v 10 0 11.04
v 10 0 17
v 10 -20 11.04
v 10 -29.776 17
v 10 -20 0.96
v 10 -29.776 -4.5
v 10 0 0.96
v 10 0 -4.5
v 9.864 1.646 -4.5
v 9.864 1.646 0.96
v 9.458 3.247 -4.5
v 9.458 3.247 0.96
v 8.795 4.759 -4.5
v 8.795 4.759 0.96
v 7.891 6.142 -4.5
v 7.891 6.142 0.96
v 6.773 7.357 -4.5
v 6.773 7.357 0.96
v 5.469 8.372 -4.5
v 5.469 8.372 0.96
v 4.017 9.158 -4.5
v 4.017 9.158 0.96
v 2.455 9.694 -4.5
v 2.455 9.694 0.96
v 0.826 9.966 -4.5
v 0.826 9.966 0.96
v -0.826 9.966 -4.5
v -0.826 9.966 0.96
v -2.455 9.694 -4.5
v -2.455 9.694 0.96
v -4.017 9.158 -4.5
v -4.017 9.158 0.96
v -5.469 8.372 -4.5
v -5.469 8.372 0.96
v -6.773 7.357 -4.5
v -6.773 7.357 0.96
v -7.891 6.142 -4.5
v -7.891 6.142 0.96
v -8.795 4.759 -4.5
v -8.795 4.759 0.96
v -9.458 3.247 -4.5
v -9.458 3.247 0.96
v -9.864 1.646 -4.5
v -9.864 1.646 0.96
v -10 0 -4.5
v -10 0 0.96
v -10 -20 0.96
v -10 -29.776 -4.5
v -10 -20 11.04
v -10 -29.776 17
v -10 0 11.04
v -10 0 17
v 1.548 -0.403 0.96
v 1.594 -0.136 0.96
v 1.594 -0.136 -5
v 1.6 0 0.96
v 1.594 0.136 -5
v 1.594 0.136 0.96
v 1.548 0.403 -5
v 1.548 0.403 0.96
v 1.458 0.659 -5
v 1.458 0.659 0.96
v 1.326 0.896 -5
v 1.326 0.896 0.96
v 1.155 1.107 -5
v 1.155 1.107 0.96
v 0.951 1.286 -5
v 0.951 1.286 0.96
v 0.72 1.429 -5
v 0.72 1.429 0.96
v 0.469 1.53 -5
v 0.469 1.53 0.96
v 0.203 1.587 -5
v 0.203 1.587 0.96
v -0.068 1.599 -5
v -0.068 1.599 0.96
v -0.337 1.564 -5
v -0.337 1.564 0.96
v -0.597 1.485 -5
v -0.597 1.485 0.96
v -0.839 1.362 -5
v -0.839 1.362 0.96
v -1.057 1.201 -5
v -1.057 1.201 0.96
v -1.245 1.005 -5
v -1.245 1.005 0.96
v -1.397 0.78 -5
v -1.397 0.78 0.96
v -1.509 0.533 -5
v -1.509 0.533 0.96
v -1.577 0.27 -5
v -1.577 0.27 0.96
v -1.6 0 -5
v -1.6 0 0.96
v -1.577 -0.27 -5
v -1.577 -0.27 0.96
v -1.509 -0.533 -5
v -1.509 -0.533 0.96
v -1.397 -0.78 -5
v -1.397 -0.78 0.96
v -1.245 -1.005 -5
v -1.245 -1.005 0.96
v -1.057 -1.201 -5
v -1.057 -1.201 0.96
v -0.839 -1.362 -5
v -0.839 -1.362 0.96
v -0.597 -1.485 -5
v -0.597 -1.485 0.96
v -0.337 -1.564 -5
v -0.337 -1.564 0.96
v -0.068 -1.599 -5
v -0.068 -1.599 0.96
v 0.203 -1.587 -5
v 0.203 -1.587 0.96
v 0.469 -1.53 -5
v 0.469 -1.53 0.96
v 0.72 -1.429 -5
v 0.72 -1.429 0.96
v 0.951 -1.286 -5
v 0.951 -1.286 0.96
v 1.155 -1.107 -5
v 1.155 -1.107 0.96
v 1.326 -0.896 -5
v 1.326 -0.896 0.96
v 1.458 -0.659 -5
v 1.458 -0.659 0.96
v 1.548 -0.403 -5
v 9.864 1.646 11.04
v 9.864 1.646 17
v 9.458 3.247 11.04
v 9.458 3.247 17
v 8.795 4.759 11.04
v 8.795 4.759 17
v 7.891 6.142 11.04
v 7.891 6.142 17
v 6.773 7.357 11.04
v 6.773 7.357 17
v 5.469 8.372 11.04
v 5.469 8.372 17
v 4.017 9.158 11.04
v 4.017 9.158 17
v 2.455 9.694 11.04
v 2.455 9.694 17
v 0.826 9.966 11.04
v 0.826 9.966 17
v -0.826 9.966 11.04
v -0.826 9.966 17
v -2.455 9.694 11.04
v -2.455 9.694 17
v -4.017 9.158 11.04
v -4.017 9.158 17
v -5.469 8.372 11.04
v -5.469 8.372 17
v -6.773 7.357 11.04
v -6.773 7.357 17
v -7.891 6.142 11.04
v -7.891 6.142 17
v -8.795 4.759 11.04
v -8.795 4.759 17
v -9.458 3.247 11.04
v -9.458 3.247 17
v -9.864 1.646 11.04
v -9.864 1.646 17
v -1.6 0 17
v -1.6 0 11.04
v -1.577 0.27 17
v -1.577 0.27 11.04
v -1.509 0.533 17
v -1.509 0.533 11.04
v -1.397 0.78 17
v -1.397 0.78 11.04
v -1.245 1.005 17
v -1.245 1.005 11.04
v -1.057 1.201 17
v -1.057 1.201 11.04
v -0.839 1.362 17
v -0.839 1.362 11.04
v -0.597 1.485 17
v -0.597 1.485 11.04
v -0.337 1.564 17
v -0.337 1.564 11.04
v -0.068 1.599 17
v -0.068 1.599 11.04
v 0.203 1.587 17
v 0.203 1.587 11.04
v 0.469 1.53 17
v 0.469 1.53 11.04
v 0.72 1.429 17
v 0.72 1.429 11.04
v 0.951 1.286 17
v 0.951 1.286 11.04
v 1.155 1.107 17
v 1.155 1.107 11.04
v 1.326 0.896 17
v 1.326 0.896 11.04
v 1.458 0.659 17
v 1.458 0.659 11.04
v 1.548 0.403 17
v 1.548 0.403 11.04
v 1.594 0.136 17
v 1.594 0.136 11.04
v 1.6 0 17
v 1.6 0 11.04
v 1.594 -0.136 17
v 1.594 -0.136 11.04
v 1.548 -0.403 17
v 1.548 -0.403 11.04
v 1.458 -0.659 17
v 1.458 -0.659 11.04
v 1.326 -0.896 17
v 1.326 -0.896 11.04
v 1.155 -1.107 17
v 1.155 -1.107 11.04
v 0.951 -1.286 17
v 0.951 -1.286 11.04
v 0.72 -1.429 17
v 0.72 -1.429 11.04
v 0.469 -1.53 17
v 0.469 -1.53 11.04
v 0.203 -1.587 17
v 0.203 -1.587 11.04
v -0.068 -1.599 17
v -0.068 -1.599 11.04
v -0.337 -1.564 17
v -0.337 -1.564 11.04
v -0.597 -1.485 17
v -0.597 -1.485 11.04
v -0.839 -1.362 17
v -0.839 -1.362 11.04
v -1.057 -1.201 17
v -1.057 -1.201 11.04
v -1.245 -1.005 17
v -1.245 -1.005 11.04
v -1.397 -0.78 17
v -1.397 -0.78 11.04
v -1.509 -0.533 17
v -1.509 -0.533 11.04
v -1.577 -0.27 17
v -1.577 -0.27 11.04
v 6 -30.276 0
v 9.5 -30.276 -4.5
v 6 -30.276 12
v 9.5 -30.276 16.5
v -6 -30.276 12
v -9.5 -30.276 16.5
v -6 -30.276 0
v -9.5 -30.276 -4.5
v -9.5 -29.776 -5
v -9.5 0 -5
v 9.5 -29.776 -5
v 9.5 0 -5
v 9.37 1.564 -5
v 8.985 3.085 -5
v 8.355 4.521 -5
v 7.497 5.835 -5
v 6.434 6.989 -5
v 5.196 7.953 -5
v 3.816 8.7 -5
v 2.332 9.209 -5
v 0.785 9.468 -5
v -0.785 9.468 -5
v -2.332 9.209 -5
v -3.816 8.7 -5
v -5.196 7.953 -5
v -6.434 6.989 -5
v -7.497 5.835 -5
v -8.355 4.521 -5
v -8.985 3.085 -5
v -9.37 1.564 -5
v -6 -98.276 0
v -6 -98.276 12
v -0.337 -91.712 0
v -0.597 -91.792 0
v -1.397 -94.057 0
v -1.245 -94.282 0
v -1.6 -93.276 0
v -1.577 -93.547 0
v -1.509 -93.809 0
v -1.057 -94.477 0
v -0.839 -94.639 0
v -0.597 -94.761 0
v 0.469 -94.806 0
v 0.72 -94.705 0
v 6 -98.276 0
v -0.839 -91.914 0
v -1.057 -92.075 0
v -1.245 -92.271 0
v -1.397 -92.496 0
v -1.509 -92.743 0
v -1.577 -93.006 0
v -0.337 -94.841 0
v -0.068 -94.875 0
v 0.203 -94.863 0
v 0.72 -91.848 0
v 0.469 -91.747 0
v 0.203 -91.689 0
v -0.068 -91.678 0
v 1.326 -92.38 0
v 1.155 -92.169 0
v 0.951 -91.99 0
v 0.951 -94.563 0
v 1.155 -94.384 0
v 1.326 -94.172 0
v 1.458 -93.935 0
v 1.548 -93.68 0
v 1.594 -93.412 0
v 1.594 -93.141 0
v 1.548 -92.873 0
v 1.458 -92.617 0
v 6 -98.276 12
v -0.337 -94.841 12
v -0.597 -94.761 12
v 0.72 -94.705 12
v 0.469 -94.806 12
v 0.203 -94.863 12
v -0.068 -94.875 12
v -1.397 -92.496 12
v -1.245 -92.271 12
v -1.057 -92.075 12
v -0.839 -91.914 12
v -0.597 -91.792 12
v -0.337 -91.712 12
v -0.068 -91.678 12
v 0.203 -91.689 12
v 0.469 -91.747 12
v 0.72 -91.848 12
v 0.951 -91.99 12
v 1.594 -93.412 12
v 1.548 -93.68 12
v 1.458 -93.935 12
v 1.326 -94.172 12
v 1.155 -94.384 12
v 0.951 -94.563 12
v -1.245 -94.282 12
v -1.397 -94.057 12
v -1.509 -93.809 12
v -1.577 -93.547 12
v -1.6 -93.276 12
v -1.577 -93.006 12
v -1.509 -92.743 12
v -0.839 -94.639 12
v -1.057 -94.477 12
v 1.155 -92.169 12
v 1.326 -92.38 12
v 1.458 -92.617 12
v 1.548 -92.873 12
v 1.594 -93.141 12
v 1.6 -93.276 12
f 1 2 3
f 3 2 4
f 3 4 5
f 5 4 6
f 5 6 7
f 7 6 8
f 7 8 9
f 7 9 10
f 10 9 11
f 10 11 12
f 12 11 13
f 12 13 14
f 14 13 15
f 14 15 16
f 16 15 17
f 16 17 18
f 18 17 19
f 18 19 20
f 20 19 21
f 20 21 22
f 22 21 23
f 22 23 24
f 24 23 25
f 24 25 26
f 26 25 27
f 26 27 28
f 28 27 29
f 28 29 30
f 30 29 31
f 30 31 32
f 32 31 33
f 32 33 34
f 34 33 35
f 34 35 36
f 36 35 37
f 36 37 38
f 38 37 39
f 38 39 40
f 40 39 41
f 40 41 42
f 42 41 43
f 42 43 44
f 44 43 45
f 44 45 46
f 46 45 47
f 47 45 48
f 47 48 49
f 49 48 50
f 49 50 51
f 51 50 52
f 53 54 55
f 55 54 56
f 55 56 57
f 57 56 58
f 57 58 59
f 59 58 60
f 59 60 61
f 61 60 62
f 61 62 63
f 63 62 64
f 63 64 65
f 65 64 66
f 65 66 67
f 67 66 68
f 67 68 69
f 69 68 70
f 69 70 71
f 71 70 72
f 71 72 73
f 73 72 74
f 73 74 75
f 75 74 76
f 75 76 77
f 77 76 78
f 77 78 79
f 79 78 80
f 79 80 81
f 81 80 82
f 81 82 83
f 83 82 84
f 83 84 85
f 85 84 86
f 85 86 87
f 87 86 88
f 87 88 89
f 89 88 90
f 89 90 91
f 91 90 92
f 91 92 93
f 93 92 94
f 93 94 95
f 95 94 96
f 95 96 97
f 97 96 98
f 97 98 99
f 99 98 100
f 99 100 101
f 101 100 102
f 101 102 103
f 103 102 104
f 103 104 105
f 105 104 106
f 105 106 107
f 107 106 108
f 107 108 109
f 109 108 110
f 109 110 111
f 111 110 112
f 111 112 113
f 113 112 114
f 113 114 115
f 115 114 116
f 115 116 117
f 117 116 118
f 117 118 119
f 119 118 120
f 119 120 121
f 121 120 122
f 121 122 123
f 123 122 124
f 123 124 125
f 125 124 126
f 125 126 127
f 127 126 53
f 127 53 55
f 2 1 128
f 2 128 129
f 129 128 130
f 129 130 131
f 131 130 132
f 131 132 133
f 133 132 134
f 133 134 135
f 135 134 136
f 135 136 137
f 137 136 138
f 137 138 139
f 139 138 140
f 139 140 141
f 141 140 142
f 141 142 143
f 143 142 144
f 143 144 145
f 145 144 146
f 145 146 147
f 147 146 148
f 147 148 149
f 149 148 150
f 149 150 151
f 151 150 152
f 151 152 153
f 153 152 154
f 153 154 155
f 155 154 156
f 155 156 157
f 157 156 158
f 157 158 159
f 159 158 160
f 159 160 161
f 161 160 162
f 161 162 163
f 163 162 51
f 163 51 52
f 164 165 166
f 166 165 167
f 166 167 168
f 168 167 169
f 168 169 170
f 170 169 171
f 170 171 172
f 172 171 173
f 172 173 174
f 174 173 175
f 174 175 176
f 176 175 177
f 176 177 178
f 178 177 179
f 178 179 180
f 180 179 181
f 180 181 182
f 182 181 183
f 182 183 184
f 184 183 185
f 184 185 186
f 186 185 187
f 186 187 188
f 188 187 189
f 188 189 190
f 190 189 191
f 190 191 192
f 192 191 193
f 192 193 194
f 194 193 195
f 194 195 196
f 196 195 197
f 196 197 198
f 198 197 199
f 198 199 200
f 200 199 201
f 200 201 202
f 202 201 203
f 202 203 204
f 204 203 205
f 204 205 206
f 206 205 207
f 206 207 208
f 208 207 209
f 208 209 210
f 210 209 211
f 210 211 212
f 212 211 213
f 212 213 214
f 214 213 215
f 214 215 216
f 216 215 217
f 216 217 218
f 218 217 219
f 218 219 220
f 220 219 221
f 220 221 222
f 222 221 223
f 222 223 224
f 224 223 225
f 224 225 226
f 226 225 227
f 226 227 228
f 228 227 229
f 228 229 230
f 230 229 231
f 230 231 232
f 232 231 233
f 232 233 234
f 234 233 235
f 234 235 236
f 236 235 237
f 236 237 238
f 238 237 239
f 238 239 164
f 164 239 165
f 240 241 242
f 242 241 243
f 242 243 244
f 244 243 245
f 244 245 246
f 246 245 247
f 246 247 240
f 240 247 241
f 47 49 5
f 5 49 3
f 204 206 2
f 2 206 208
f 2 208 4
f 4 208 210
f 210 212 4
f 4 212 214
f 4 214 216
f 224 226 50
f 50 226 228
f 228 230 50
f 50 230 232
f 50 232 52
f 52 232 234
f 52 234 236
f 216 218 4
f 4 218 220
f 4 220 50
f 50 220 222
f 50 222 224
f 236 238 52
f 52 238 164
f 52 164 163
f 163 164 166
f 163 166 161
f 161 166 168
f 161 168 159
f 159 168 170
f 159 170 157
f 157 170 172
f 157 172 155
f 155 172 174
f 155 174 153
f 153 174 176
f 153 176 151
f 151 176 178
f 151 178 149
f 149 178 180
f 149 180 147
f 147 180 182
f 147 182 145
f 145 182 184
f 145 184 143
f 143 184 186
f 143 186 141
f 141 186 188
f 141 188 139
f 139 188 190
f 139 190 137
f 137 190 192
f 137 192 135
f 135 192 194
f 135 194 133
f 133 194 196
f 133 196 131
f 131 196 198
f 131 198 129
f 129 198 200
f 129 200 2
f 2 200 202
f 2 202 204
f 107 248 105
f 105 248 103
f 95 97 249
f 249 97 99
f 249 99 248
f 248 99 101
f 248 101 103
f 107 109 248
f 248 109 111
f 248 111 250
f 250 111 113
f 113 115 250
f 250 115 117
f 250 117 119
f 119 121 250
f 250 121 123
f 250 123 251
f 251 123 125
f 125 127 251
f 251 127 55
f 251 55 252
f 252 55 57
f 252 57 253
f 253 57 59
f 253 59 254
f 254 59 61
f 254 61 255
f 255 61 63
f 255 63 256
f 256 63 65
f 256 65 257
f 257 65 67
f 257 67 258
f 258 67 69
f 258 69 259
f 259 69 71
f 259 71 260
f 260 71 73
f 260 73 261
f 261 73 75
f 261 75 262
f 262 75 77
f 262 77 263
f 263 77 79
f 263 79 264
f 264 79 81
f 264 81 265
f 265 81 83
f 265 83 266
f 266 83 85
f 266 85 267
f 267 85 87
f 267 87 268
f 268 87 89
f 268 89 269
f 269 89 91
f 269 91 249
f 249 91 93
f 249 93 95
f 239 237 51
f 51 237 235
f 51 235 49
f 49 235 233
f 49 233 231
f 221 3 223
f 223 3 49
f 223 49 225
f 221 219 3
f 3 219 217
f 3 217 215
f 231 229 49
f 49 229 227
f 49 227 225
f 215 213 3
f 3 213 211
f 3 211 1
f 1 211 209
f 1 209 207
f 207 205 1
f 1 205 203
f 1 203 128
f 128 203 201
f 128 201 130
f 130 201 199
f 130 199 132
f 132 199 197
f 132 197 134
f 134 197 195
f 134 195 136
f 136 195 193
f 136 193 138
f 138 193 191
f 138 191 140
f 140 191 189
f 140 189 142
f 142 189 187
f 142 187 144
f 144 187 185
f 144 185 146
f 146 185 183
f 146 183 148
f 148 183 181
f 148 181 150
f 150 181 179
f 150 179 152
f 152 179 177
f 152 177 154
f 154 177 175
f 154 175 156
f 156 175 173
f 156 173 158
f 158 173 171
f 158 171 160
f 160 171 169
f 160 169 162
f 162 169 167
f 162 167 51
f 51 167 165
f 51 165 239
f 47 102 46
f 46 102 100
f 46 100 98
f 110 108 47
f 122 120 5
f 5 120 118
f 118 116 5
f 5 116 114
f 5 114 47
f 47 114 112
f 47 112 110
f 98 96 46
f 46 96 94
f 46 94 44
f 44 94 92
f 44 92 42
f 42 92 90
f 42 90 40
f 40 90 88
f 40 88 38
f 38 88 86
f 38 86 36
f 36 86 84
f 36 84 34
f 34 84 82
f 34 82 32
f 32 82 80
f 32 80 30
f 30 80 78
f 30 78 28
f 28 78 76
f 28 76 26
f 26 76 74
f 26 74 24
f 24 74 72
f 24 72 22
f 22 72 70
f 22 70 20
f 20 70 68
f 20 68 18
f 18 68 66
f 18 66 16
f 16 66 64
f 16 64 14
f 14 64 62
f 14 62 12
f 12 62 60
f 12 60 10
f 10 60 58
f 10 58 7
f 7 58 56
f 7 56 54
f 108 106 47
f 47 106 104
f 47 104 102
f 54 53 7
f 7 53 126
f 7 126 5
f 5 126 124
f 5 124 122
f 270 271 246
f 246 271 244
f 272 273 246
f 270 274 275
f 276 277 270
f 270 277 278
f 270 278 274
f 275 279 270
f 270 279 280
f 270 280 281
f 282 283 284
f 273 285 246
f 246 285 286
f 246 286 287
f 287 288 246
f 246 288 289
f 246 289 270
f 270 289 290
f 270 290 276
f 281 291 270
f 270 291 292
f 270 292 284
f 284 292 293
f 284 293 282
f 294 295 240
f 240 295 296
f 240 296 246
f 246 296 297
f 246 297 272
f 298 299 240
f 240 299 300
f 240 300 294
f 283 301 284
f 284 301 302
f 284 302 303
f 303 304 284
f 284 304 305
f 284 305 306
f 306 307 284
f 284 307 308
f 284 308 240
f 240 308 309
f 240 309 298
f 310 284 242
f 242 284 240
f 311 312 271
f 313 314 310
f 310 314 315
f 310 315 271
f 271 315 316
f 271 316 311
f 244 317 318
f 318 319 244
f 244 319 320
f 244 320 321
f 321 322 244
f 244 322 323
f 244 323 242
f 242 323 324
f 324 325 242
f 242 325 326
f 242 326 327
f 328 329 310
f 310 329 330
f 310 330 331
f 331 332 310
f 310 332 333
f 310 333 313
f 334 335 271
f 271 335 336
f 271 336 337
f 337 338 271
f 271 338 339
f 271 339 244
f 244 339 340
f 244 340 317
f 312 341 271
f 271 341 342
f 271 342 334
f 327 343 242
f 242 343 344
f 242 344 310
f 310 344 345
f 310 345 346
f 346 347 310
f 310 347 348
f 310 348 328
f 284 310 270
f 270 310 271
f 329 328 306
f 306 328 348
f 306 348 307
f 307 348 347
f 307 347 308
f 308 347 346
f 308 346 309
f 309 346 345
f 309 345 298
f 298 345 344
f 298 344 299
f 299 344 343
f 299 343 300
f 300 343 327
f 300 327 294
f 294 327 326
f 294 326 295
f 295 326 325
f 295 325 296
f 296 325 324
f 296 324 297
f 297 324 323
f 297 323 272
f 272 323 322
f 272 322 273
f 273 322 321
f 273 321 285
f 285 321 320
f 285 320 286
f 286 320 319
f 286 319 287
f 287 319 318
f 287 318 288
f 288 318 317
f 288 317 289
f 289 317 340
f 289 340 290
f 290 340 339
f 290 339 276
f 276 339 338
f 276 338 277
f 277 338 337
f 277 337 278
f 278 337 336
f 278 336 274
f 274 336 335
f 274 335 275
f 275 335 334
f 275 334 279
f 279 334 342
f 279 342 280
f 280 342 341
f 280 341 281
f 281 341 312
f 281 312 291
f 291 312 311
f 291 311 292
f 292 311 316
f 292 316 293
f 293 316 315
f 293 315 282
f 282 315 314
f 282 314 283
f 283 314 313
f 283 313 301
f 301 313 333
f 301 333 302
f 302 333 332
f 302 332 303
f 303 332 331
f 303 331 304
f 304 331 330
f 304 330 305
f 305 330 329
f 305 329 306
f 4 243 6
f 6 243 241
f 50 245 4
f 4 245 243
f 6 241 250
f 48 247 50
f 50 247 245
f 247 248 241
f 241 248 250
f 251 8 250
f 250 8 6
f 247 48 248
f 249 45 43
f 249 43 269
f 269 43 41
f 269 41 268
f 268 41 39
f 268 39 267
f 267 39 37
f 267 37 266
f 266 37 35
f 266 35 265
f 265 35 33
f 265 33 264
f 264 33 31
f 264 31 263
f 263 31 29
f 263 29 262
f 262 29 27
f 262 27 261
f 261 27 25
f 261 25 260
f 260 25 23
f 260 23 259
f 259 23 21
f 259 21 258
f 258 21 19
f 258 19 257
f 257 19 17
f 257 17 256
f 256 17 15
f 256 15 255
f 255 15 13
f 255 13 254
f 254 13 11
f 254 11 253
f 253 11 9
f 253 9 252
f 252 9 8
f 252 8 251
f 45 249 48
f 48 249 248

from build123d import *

# Parameters (mm, degrees)
SKETCH_1_R          = 1.6
EXTRUDE_1_DEPTH     = 12
CUT_EXTRUDE_1_DEPTH = 21
CUT_EXTRUDE_6_DEPTH = 21
SKETCH_12_R         = 1.6
EXTRUDE_11_DEPTH    = 5
SKETCH_13_R         = 1.6
EXTRUDE_12_DEPTH    = 5
SKETCH_14_W         = 2.04
SKETCH_14_H         = 20
CUT_EXTRUDE_7_DEPTH = 21
SKETCH_15_W         = 6
SKETCH_15_H         = 6
EXTRUDE_13_DEPTH    = 68
SKETCH_17_R         = 1.6
CUT_EXTRUDE_8_DEPTH = 18
CHAMFER_1_SIZE      = 0.5


with BuildPart() as part:
    # 草圖1 → 填料-伸長1 (new body)
    with BuildSketch(Plane.XY):
        with BuildLine():
            Line((-10, 0), (-10, -30.276417548))
            Line((-10, -30.276417548), (10, -30.276417548))
            Line((10, -30.276417548), (10, 0))
            ThreePointArc((10, 0), (0, 10), (-10, 0))
        make_face()
        Circle(SKETCH_1_R, mode=Mode.SUBTRACT)
    extrude(amount=EXTRUDE_1_DEPTH)

    # 草圖2 → 除料-伸長1 (cut, through all)
    with BuildSketch(Plane(origin=(10, 0, 0), x_dir=(0, 0, -1), z_dir=(1, 0, 0))):
        Polygon((-9, 0), (-6, 0), (-3, 0), (-3, 15.780779257), (-9, 15.780779257), align=None)
        Polygon((-3, 0), (-6, 0), (-9, 0), (-8.60053373, -20), (-3, -20), align=None)
    extrude(amount=-CUT_EXTRUDE_1_DEPTH, mode=Mode.SUBTRACT)

    # 草圖11 → 除料-伸長6 (cut, through all)
    with BuildSketch(Plane(origin=(10, 0, 0), x_dir=(0, 0, -1), z_dir=(1, 0, 0))):
        Polygon((-9, 0), (-9, -20), (-8.60053373, -20), align=None)
    extrude(amount=-CUT_EXTRUDE_6_DEPTH, mode=Mode.SUBTRACT)

    # 草圖12 → 填料-伸長11 (add)
    with BuildSketch(Plane.XY.offset(12)):
        with BuildLine():
            ThreePointArc((10, 0), (0, 10), (-10, 0))
            ThreePointArc((-10, 0), (0, -10), (10, 0))
        make_face()
        Circle(SKETCH_12_R, mode=Mode.SUBTRACT)
        with BuildLine():
            ThreePointArc((10, 0), (0, -10), (-10, 0))
            Line((-10, 0), (-10, -30.276417548))
            Line((-10, -30.276417548), (10, -30.276417548))
            Line((10, -30.276417548), (10, 0))
        make_face()
    extrude(amount=EXTRUDE_11_DEPTH)

    # 草圖13 → 填料-伸長12 (add)
    with BuildSketch(Plane(origin=(0, 0, 0), x_dir=(-1, 0, 0), z_dir=(0, 0, -1))):
        with BuildLine():
            ThreePointArc((10, 0), (0, 10), (-10, 0))
            ThreePointArc((-10, 0), (0, -10), (10, 0))
        make_face()
        Circle(SKETCH_13_R, mode=Mode.SUBTRACT)
        with BuildLine():
            ThreePointArc((10, 0), (0, -10), (-10, 0))
            Line((-10, 0), (-10, -30.276417548))
            Line((-10, -30.276417548), (10, -30.276417548))
            Line((10, -30.276417548), (10, 0))
        make_face()
    extrude(amount=EXTRUDE_12_DEPTH)

    # 草圖14 → 除料-伸長7 (cut, through all)
    with BuildSketch(Plane.ZY.offset(10)):
        Polygon((3, 0), (3, -20), (9, -20), (9, 0), (11.04, 0), (11.04, 10), (3, 10), (0.96, 10), (0.96, 0), align=None)
        with Locations((1.98, -10)):
            Rectangle(SKETCH_14_W, SKETCH_14_H)
        with Locations((10.02, -10)):
            Rectangle(SKETCH_14_W, SKETCH_14_H)
    extrude(amount=-CUT_EXTRUDE_7_DEPTH, mode=Mode.SUBTRACT)

    # 草圖15 → 填料-伸長13 (add)
    with BuildSketch(Plane.XZ.offset(30.276417548)):
        with Locations((3, 9)):
            Rectangle(SKETCH_15_W, SKETCH_15_H)
        with Locations((-3, 9)):
            Rectangle(SKETCH_15_W, SKETCH_15_H)
        with Locations((3, 3)):
            Rectangle(SKETCH_15_W, SKETCH_15_H)
        with Locations((-3, 3)):
            Rectangle(SKETCH_15_W, SKETCH_15_H)
    extrude(amount=EXTRUDE_13_DEPTH)

    # 草圖17 → 除料-伸長8 (cut, through all)
    with BuildSketch(Plane(origin=(0, 0, 0), x_dir=(-1, 0, 0), z_dir=(0, 0, -1))):
        with Locations((0, -93.276417548)):
            Circle(SKETCH_17_R)
    extrude(amount=-CUT_EXTRUDE_8_DEPTH, mode=Mode.SUBTRACT)

    # 導角1
    chamfer_1_edges = [part.edges().sort_by_distance(p)[0] for p in [
        (10, -30.276417548, 6),
        (-10, -30.276417548, 6),
        (0, -30.276417548, 17),
        (0, 10, -5),
        (10, -15.138208774, -5),
        (0, -30.276417548, -5),
        (-10, -15.138208774, -5),
    ]]
    chamfer(chamfer_1_edges, length=CHAMFER_1_SIZE)


solid = part.part
